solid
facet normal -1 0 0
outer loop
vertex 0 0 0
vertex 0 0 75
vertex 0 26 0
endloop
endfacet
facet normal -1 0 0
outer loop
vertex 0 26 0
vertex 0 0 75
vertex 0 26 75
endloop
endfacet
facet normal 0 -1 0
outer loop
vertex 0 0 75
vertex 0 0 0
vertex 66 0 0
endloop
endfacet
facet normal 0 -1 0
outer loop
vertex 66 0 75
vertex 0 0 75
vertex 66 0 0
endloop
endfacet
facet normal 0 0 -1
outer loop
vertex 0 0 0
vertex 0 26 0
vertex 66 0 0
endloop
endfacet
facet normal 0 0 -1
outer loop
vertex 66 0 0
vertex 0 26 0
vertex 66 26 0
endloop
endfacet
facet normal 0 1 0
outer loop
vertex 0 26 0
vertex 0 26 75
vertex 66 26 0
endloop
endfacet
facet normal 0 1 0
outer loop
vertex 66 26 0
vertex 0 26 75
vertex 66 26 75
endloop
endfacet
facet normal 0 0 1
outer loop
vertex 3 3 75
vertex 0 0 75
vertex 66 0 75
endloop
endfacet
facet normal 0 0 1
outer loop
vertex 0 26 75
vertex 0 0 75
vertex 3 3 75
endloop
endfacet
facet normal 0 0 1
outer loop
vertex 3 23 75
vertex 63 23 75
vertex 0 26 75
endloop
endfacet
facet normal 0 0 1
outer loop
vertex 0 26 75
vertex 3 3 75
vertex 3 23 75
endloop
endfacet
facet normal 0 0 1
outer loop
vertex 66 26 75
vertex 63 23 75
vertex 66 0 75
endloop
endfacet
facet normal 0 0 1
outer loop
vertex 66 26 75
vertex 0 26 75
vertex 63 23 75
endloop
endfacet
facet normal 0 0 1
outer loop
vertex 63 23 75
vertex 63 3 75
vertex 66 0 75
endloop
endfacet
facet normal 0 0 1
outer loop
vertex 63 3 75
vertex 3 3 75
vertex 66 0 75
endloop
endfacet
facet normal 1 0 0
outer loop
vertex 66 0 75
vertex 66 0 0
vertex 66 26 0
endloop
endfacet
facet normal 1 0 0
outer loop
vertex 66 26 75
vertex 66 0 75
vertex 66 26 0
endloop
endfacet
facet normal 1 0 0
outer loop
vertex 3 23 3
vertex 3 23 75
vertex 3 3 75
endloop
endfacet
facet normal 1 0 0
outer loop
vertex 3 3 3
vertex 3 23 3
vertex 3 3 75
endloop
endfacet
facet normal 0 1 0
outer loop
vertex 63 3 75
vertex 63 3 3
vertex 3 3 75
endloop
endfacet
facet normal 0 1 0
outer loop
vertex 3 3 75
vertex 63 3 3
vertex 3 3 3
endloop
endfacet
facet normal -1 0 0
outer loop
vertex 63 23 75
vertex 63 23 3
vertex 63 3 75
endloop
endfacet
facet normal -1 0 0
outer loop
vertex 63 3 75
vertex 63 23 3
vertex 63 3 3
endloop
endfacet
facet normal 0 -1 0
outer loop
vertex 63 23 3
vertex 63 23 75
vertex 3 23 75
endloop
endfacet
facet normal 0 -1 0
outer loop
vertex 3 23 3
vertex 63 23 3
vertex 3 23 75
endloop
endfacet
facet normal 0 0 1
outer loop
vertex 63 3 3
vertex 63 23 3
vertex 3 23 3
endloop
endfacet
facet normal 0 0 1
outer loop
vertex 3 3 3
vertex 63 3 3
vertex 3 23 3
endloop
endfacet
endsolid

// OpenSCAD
difference(){
cube([66,26,75]);
translate([3,3,3])cube([60,20,75]);
}
